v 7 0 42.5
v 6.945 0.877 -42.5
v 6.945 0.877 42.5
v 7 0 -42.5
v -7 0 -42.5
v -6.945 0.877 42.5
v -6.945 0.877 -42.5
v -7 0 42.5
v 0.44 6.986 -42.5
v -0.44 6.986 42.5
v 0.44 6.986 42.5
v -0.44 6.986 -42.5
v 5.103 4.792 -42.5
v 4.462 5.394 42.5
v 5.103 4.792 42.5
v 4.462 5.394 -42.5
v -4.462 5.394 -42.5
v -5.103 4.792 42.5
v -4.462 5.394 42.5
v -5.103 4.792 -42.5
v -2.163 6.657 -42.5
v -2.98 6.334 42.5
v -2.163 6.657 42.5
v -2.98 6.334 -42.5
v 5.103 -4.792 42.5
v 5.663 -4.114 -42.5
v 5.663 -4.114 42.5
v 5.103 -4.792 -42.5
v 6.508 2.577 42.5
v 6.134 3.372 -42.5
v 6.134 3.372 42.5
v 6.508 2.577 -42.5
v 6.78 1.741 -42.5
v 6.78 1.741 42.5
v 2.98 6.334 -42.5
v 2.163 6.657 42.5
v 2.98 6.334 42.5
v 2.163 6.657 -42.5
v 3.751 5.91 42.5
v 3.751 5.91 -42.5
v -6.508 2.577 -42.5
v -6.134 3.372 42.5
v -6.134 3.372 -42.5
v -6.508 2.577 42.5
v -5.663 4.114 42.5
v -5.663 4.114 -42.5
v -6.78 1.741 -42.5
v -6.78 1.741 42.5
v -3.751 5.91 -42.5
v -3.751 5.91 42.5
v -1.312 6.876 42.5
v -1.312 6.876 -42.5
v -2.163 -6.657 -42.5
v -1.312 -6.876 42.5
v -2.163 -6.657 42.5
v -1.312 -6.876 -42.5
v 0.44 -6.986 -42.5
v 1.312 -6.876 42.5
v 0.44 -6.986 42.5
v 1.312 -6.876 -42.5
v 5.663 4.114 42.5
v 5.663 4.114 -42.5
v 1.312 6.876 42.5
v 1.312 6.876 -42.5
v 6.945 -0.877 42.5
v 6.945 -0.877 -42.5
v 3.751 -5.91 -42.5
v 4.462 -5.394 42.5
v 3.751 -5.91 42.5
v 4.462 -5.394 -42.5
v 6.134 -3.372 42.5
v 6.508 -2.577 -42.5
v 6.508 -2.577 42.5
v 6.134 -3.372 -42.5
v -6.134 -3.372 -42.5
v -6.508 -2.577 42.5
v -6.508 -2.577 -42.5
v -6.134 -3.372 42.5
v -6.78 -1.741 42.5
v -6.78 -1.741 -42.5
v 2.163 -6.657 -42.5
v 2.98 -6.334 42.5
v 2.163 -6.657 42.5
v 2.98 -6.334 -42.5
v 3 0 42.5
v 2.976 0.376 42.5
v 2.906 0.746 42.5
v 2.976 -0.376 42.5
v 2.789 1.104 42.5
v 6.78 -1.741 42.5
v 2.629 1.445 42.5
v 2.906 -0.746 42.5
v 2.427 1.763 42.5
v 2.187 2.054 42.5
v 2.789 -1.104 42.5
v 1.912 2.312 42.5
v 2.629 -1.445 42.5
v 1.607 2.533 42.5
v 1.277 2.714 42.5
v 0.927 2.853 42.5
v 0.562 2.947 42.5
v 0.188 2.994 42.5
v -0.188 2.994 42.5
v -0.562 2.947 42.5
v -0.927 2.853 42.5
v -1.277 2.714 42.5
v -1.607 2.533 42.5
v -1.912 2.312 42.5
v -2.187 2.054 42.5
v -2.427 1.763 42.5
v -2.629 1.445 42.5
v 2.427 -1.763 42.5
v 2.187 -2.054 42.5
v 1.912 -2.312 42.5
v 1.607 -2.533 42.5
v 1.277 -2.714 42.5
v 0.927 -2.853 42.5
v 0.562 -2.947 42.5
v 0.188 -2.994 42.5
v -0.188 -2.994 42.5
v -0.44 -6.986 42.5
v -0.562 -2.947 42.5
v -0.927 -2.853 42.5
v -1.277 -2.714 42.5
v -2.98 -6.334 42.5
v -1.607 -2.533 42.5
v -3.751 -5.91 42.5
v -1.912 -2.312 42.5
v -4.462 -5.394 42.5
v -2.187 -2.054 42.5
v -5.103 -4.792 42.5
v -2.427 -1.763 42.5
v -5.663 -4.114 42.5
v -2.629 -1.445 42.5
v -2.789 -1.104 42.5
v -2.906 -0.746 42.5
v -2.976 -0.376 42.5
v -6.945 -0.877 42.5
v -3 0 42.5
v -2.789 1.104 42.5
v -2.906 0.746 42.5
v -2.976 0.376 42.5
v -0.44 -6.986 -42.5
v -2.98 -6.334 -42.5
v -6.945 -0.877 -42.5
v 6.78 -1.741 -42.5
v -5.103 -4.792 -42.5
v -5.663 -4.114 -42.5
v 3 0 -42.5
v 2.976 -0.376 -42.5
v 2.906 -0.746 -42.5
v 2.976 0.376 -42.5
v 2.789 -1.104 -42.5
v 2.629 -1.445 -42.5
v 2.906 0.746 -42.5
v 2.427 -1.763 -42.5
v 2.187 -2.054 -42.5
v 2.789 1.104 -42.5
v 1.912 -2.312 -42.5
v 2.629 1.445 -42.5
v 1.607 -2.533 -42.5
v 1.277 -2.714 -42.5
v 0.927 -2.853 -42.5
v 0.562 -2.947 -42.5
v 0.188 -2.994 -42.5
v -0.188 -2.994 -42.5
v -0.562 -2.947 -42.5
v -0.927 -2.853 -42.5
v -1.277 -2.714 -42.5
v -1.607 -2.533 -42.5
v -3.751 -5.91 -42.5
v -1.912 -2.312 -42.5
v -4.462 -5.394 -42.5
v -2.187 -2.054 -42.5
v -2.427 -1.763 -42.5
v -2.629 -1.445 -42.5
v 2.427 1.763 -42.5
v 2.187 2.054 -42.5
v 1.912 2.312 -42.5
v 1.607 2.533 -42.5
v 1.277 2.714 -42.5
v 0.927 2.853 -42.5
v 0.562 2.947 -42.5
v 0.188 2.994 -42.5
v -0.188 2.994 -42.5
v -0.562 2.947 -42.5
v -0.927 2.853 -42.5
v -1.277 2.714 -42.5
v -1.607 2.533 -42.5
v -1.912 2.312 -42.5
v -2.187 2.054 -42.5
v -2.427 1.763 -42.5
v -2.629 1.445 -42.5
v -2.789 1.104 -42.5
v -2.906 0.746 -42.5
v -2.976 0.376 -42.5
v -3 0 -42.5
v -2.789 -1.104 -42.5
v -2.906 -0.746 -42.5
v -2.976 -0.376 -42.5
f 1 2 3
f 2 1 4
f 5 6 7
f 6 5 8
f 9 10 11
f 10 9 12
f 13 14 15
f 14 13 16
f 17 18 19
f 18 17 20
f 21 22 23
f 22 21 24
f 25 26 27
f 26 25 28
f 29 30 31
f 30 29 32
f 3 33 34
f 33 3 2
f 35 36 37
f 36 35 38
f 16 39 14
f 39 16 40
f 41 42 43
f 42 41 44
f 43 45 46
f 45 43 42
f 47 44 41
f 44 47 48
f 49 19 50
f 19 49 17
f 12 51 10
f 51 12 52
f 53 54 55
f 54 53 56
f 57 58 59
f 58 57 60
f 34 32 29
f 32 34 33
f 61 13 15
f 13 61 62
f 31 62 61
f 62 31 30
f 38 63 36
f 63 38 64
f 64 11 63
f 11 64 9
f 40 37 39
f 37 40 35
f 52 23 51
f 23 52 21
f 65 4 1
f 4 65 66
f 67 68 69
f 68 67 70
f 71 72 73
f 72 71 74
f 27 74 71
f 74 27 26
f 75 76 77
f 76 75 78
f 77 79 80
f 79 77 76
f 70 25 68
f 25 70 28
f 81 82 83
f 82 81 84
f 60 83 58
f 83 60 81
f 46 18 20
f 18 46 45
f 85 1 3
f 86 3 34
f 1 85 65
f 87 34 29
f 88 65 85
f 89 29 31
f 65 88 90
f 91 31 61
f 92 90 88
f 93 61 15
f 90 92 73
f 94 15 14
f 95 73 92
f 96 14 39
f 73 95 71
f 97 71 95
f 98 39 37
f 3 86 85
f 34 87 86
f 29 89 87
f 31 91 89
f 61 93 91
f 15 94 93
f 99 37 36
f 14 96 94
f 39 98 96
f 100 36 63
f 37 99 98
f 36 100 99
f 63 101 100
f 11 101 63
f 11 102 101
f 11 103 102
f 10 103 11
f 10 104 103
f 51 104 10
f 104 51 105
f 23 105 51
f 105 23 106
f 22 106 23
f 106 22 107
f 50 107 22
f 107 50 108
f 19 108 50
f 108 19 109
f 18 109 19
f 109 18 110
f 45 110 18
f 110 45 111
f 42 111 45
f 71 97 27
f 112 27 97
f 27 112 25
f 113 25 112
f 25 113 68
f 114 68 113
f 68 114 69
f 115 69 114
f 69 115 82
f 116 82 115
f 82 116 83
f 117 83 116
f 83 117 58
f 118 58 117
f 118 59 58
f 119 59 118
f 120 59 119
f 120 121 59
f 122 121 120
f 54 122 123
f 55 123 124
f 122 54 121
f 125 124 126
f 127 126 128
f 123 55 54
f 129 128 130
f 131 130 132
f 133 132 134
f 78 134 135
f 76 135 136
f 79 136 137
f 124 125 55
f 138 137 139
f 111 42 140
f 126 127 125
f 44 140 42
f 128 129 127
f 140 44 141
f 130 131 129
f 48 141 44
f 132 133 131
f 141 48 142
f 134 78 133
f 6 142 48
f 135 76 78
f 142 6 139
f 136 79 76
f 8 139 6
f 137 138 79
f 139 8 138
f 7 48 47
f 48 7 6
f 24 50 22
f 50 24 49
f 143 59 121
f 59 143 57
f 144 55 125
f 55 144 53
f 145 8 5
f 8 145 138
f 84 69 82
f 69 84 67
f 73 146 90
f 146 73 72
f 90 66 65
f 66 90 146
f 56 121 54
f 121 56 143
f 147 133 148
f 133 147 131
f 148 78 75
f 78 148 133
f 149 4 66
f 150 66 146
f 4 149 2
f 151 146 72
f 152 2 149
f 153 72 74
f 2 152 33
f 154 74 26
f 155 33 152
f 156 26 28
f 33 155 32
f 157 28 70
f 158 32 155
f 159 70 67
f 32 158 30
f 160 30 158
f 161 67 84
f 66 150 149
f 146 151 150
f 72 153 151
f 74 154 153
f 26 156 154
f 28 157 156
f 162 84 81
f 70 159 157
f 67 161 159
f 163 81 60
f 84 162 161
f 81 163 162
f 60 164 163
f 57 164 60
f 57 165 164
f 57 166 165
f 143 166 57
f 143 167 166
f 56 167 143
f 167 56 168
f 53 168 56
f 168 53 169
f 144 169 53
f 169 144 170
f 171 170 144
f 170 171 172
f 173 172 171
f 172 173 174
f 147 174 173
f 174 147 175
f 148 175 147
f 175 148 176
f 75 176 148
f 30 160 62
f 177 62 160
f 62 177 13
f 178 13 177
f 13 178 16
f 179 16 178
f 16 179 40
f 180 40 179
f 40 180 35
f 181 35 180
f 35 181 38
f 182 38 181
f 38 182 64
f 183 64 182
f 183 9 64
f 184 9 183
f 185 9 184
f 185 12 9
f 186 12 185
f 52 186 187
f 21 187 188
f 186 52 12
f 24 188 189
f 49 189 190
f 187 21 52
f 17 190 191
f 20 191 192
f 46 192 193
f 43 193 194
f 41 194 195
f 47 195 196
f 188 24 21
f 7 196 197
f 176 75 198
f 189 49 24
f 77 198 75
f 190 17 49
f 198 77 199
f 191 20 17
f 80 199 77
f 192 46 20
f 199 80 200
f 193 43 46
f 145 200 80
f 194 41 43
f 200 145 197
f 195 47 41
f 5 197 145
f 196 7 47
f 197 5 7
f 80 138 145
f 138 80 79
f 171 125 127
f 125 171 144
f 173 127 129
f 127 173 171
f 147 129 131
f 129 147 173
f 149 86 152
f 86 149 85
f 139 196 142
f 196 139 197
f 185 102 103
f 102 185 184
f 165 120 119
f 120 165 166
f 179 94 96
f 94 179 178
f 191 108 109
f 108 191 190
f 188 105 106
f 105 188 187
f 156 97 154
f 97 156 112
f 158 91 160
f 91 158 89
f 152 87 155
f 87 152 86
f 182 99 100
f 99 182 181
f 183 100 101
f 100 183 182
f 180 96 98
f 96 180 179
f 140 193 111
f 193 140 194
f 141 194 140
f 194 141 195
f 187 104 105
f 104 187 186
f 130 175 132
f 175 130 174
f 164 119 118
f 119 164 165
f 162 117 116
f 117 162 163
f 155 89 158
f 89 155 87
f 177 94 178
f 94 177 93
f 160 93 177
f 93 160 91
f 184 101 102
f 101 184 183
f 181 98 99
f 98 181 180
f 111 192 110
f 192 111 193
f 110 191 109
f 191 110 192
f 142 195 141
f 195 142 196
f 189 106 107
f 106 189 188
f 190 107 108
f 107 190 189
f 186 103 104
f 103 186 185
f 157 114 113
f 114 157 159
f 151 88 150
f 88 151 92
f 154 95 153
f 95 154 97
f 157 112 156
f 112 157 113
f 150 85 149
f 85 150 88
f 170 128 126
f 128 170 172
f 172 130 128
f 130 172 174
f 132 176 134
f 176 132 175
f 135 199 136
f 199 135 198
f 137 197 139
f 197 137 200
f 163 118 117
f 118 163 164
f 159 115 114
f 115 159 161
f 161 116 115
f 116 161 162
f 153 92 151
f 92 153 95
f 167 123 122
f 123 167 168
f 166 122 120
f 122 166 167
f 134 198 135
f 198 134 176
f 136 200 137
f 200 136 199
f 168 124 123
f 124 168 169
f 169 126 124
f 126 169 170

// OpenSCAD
$fn = 50;


difference() {
	union() {
		translate(v = [0, 0, -42.5000000000]) {
			cylinder(h = 85, r = 7.0000000000);
		}
	}
	union() {
		translate(v = [0, 0, -100.0000000000]) {
			cylinder(h = 200, r = 3.0000000000);
		}
	}
}
